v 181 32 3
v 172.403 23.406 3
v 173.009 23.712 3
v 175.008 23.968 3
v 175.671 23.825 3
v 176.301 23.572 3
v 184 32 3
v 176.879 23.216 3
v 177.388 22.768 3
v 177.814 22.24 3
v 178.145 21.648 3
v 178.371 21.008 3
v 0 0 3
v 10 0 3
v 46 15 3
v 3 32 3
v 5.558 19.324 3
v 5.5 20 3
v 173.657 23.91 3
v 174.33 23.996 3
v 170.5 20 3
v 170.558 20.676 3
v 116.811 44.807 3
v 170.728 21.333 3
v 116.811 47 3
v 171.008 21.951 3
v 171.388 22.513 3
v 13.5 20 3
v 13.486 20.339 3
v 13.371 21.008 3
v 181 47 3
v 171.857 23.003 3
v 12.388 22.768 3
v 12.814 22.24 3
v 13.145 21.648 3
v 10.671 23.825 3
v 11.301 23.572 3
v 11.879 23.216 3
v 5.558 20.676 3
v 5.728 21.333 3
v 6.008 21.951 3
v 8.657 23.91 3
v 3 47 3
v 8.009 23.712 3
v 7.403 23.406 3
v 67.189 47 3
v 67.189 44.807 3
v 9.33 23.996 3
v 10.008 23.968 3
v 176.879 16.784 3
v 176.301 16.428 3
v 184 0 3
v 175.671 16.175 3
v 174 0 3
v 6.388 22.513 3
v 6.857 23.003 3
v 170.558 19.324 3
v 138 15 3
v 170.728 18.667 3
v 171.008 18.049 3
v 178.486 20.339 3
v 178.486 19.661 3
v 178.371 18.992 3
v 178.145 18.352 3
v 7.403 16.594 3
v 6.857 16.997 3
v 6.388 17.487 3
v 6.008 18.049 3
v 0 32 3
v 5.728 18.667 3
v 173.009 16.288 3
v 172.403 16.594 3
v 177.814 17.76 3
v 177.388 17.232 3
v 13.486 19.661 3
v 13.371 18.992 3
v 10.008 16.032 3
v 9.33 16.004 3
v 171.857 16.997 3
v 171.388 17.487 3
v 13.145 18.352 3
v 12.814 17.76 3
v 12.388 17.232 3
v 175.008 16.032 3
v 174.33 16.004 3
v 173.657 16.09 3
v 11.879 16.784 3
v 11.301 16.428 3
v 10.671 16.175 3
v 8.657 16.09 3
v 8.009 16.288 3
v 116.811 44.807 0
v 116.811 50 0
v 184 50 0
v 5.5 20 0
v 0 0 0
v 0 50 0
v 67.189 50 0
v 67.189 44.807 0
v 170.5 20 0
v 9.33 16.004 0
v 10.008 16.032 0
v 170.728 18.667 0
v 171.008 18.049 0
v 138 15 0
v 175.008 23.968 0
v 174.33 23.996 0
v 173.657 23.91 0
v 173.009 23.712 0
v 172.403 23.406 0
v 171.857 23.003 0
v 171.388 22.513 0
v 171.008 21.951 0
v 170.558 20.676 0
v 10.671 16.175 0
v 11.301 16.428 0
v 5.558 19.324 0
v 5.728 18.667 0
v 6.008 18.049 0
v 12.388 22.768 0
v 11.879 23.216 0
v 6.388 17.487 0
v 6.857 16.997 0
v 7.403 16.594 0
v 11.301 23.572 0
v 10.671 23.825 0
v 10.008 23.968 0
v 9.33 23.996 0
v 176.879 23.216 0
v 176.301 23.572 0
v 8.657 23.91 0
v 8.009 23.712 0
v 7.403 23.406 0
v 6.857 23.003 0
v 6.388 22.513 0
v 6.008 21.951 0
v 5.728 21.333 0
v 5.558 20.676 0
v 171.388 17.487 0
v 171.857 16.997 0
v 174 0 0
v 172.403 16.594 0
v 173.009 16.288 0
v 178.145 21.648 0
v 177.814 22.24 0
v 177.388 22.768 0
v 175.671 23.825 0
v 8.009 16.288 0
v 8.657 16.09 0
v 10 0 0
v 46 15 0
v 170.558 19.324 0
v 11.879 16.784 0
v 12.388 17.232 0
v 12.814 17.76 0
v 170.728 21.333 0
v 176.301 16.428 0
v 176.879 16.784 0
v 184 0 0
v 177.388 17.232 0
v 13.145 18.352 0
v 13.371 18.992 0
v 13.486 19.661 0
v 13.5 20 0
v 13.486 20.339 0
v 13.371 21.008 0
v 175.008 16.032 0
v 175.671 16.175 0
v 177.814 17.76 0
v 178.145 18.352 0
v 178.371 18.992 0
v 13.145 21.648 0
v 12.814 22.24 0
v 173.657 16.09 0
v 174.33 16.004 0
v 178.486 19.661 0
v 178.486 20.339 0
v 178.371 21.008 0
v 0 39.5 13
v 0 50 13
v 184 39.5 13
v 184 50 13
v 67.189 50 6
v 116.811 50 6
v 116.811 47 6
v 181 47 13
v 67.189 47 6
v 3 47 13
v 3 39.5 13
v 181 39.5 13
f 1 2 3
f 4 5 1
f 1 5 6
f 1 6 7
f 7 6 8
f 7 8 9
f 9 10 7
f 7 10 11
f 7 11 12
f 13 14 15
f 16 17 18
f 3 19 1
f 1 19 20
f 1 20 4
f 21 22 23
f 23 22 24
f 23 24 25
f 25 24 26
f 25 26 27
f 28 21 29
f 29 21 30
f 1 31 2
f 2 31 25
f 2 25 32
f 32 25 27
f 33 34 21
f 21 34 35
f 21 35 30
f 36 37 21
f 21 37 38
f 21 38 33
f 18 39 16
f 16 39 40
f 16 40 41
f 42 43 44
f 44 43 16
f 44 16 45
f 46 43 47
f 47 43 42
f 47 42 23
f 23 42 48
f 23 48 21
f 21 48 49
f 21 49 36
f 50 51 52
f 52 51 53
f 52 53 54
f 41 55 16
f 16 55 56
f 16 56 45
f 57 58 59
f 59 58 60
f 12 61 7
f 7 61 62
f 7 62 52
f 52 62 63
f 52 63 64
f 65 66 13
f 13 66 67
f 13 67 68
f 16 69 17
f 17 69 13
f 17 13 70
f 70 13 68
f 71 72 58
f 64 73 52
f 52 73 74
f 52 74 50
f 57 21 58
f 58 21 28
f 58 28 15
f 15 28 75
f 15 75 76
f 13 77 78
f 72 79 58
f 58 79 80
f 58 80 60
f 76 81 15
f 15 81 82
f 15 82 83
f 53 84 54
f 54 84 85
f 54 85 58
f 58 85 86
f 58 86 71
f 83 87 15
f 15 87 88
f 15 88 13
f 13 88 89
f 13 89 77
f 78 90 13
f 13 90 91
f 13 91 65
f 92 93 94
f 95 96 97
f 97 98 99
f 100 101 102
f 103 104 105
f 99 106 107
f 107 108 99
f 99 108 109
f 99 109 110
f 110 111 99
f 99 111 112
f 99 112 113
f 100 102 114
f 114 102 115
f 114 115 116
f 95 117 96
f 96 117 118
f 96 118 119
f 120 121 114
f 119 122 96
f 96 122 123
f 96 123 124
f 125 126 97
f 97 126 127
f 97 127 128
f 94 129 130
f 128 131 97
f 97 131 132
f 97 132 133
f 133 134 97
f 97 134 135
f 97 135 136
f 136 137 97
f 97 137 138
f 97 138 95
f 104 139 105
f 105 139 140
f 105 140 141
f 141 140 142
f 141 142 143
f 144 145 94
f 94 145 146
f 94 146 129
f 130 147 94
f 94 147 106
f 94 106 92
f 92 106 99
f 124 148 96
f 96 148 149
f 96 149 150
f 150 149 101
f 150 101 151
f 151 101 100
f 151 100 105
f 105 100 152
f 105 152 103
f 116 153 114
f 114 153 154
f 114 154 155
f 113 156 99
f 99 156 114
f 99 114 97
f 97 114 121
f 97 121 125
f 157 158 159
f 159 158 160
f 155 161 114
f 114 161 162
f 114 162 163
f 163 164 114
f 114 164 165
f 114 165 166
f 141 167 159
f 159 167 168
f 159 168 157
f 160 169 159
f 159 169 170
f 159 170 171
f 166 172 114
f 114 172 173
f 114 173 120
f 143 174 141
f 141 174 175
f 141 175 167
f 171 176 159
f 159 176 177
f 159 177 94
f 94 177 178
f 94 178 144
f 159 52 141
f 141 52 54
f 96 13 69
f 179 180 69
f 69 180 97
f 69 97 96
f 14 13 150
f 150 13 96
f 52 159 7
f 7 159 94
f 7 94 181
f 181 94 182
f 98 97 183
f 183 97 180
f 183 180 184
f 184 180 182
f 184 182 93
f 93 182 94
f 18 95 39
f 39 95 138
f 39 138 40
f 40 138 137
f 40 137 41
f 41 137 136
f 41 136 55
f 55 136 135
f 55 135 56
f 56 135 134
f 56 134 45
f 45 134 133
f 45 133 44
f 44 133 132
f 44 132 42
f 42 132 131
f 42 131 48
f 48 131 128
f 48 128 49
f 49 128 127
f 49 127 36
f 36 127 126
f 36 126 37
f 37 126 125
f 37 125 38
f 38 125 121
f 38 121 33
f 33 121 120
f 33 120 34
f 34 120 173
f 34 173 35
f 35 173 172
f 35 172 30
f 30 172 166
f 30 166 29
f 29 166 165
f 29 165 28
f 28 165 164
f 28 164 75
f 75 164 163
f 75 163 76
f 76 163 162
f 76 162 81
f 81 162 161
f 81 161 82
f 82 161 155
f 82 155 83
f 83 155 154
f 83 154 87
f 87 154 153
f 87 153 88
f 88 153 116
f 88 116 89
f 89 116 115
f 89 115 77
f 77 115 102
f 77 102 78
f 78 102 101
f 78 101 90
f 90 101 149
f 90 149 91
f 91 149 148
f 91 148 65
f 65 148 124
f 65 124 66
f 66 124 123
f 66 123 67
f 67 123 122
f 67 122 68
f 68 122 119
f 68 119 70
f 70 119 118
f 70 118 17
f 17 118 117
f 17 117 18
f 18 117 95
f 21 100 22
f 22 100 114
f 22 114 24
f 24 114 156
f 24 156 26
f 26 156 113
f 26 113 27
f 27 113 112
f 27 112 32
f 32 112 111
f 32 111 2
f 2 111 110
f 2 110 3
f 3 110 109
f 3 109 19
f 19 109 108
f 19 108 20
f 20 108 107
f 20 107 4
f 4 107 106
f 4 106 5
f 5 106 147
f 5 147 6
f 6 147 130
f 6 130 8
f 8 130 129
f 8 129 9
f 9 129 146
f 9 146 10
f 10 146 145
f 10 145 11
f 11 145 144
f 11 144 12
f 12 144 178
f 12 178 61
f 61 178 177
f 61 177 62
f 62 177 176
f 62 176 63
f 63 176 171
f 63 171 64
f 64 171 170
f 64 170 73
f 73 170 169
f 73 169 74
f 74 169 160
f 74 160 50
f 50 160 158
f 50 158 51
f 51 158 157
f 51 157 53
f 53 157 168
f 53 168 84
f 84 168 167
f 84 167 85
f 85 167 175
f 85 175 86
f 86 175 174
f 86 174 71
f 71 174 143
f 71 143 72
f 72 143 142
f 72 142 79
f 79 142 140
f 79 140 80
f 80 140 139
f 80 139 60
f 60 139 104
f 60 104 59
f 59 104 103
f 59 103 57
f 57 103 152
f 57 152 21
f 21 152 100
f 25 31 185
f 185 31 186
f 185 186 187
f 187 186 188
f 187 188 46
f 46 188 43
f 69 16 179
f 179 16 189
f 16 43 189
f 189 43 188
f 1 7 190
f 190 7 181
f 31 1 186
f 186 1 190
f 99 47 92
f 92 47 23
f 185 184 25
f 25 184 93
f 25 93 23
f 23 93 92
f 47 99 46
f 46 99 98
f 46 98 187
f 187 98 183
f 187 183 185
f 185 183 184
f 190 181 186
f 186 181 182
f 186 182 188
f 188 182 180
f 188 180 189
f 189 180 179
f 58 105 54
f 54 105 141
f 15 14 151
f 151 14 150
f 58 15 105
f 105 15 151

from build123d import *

# Parameters (mm, degrees)
SKETCH1_W           = 184
SKETCH1_H           = 50
SKETCH1_R           = 4
BOSS_EXTRUDE2_DEPTH = 3
SKETCH2_W           = 184
SKETCH2_H           = 3
BOSS_EXTRUDE3_DEPTH = 20
BOSS_EXTRUDE4_DEPTH = 3
BOSS_EXTRUDE5_DEPTH = 3
SKETCH5_W           = 49.622419658
SKETCH5_H           = 10.386730574
CUT_EXTRUDE3_DEPTH  = 6
SKETCH7_W           = 184
SKETCH7_H           = 10
CUT_EXTRUDE5_DEPTH  = 16
CUT_EXTRUDE7_DEPTH  = 16


with BuildPart() as part:
    # Sketch1 → Boss-Extrude2 (new body)
    with BuildSketch(Plane.XY):
        with Locations((92, 25)):
            Rectangle(SKETCH1_W, SKETCH1_H)
        with Locations((9.5, 20)):
            Circle(SKETCH1_R, mode=Mode.SUBTRACT)
        with Locations((174.5, 20)):
            Circle(SKETCH1_R, mode=Mode.SUBTRACT)
    extrude(amount=BOSS_EXTRUDE2_DEPTH)

    # Sketch2 → Boss-Extrude3 (add)
    with BuildSketch(Plane.XY.offset(3)):
        with Locations((92, 48.5)):
            Rectangle(SKETCH2_W, SKETCH2_H)
    extrude(amount=BOSS_EXTRUDE3_DEPTH)

    # Sketch3 → Boss-Extrude4 (add)
    with BuildSketch(Plane.ZY):
        Polygon((23, 47), (3, 47), (3, 32), align=None)
    extrude(amount=-BOSS_EXTRUDE4_DEPTH)

    # Sketch4 → Boss-Extrude5 (add)
    with BuildSketch(Plane(origin=(184, 0, 0), x_dir=(0, 0, -1), z_dir=(1, 0, 0))):
        Polygon((-23, 47), (-3, 32), (-3, 47), align=None)
    extrude(amount=-BOSS_EXTRUDE5_DEPTH)

    # Sketch5 → Cut-Extrude3 (cut)
    with BuildSketch(Plane(origin=(0, 0, 0), x_dir=(-1, 0, 0), z_dir=(0, 0, -1))):
        with Locations((-92, 50)):
            Rectangle(SKETCH5_W, SKETCH5_H)
    extrude(amount=-CUT_EXTRUDE3_DEPTH, mode=Mode.SUBTRACT)

    # Sketch7 → Cut-Extrude5 (cut)
    with BuildSketch(Plane(origin=(0, 50, 0), x_dir=(1, 0, 0), z_dir=(0, 1, 0))):
        with Locations((92, -18)):
            Rectangle(SKETCH7_W, SKETCH7_H)
    extrude(amount=-CUT_EXTRUDE5_DEPTH, mode=Mode.SUBTRACT)

    # Sketch8 → Cut-Extrude7 (cut)
    with BuildSketch(Plane.XY.offset(3)):
        Polygon((46, 15), (10, 0), (174, 0), (138, 15), align=None)
    extrude(amount=-CUT_EXTRUDE7_DEPTH, mode=Mode.SUBTRACT)


solid = part.part
